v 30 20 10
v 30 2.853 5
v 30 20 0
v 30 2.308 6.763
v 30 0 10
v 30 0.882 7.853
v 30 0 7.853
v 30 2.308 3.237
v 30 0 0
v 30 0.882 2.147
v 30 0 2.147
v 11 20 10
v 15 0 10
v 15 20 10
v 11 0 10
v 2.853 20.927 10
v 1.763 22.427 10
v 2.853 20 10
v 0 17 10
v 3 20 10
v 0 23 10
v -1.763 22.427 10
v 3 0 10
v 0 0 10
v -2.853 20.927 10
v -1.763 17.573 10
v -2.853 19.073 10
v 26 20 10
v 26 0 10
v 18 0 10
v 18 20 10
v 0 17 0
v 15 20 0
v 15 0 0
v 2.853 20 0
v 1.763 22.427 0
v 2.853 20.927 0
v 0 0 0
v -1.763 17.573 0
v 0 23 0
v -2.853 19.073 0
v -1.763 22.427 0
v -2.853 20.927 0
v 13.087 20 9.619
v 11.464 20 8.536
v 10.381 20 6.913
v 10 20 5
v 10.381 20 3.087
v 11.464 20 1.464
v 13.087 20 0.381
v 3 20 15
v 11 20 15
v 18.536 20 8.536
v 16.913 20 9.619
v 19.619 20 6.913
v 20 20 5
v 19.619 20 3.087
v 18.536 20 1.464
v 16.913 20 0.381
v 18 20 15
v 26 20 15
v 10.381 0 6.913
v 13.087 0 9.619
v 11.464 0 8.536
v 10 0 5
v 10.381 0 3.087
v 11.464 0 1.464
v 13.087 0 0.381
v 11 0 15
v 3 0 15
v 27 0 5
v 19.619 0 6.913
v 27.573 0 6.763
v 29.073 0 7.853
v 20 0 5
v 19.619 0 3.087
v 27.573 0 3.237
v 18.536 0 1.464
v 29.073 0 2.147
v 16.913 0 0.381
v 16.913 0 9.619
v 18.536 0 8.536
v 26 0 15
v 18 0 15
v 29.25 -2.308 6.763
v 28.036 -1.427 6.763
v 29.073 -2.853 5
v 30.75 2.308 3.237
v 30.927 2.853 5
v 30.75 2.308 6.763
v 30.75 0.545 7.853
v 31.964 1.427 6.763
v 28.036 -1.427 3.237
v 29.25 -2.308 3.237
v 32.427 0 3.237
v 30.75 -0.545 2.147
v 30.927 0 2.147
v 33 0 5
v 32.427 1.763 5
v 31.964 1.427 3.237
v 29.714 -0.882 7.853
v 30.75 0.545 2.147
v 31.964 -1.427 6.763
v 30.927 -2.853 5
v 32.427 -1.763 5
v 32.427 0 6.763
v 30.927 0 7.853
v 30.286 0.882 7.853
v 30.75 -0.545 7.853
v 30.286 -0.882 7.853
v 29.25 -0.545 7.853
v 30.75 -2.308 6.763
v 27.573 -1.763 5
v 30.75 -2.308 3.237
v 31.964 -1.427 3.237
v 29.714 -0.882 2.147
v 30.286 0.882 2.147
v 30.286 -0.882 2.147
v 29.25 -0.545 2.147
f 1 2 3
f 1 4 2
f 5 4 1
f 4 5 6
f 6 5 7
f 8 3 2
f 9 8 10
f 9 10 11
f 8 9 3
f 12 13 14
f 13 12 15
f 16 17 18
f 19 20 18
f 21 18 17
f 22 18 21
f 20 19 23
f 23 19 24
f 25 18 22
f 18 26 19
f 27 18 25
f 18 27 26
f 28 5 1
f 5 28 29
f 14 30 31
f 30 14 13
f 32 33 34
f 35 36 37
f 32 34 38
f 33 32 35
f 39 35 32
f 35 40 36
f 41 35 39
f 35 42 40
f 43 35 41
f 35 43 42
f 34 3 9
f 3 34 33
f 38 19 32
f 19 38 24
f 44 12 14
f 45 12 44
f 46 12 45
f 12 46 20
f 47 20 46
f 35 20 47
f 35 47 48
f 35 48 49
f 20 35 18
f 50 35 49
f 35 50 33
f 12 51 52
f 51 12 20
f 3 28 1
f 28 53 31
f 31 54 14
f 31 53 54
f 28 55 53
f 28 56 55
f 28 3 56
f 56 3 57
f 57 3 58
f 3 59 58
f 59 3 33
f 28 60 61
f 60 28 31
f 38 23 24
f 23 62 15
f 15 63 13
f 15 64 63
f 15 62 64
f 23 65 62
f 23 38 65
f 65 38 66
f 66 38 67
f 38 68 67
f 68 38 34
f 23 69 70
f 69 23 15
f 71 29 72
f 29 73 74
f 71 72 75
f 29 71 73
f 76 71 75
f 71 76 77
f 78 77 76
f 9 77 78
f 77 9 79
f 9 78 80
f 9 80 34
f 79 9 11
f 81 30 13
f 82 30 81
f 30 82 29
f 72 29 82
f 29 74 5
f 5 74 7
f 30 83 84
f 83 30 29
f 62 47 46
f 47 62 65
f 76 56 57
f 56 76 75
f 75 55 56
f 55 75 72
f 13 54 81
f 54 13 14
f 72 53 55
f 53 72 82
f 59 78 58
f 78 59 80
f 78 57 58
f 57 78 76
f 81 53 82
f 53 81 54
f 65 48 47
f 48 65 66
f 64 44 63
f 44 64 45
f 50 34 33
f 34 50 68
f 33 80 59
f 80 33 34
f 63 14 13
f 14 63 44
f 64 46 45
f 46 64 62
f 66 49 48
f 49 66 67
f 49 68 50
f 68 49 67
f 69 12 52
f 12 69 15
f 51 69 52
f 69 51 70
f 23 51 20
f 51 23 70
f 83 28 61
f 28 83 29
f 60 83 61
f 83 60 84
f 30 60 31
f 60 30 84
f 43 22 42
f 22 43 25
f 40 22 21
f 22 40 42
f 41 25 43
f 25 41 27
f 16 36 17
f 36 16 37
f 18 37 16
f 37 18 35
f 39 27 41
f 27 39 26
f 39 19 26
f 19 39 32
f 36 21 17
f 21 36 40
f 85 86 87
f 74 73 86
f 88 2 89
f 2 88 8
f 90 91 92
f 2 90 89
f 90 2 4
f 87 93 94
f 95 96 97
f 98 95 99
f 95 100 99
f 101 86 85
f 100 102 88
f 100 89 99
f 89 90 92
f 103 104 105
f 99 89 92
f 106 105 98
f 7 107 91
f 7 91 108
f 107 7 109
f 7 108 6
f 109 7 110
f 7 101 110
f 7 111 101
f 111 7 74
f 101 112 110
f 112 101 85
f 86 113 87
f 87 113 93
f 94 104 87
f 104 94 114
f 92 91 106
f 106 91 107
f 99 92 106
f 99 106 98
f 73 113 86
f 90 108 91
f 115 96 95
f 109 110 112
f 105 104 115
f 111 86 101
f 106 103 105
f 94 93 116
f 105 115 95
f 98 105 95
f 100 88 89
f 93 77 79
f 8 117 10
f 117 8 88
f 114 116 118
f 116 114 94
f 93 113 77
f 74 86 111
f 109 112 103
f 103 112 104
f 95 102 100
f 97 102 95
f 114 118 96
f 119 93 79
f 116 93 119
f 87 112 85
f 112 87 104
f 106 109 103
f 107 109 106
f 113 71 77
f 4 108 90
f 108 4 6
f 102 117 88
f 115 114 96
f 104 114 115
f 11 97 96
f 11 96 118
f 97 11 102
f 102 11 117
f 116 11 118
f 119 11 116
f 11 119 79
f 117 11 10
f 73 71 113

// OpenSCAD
module complex_part() {
    
    difference() {
        // Base Cube
        cube([30, 20, 10]);
        
        // Cylindrical hole
        translate([15,10,5])
        rotate([90,0,0])
        cylinder(h=30, r=5, center=true);
    }
    
    union() {
        // Adding extruded features or extensions
        translate([3, 0, 10])
        cube([8, 20, 5]);

        translate([18, 0, 10])
        cube([8, 20, 5]);
    }

    // Additional components (as seen in images)
    translate([0, 20, 0])
    rotate([0,0,90])
    cylinder(h=10, r=3);

    translate([30, 0, 5])
    sphere(r=3);
}

complex_part();
